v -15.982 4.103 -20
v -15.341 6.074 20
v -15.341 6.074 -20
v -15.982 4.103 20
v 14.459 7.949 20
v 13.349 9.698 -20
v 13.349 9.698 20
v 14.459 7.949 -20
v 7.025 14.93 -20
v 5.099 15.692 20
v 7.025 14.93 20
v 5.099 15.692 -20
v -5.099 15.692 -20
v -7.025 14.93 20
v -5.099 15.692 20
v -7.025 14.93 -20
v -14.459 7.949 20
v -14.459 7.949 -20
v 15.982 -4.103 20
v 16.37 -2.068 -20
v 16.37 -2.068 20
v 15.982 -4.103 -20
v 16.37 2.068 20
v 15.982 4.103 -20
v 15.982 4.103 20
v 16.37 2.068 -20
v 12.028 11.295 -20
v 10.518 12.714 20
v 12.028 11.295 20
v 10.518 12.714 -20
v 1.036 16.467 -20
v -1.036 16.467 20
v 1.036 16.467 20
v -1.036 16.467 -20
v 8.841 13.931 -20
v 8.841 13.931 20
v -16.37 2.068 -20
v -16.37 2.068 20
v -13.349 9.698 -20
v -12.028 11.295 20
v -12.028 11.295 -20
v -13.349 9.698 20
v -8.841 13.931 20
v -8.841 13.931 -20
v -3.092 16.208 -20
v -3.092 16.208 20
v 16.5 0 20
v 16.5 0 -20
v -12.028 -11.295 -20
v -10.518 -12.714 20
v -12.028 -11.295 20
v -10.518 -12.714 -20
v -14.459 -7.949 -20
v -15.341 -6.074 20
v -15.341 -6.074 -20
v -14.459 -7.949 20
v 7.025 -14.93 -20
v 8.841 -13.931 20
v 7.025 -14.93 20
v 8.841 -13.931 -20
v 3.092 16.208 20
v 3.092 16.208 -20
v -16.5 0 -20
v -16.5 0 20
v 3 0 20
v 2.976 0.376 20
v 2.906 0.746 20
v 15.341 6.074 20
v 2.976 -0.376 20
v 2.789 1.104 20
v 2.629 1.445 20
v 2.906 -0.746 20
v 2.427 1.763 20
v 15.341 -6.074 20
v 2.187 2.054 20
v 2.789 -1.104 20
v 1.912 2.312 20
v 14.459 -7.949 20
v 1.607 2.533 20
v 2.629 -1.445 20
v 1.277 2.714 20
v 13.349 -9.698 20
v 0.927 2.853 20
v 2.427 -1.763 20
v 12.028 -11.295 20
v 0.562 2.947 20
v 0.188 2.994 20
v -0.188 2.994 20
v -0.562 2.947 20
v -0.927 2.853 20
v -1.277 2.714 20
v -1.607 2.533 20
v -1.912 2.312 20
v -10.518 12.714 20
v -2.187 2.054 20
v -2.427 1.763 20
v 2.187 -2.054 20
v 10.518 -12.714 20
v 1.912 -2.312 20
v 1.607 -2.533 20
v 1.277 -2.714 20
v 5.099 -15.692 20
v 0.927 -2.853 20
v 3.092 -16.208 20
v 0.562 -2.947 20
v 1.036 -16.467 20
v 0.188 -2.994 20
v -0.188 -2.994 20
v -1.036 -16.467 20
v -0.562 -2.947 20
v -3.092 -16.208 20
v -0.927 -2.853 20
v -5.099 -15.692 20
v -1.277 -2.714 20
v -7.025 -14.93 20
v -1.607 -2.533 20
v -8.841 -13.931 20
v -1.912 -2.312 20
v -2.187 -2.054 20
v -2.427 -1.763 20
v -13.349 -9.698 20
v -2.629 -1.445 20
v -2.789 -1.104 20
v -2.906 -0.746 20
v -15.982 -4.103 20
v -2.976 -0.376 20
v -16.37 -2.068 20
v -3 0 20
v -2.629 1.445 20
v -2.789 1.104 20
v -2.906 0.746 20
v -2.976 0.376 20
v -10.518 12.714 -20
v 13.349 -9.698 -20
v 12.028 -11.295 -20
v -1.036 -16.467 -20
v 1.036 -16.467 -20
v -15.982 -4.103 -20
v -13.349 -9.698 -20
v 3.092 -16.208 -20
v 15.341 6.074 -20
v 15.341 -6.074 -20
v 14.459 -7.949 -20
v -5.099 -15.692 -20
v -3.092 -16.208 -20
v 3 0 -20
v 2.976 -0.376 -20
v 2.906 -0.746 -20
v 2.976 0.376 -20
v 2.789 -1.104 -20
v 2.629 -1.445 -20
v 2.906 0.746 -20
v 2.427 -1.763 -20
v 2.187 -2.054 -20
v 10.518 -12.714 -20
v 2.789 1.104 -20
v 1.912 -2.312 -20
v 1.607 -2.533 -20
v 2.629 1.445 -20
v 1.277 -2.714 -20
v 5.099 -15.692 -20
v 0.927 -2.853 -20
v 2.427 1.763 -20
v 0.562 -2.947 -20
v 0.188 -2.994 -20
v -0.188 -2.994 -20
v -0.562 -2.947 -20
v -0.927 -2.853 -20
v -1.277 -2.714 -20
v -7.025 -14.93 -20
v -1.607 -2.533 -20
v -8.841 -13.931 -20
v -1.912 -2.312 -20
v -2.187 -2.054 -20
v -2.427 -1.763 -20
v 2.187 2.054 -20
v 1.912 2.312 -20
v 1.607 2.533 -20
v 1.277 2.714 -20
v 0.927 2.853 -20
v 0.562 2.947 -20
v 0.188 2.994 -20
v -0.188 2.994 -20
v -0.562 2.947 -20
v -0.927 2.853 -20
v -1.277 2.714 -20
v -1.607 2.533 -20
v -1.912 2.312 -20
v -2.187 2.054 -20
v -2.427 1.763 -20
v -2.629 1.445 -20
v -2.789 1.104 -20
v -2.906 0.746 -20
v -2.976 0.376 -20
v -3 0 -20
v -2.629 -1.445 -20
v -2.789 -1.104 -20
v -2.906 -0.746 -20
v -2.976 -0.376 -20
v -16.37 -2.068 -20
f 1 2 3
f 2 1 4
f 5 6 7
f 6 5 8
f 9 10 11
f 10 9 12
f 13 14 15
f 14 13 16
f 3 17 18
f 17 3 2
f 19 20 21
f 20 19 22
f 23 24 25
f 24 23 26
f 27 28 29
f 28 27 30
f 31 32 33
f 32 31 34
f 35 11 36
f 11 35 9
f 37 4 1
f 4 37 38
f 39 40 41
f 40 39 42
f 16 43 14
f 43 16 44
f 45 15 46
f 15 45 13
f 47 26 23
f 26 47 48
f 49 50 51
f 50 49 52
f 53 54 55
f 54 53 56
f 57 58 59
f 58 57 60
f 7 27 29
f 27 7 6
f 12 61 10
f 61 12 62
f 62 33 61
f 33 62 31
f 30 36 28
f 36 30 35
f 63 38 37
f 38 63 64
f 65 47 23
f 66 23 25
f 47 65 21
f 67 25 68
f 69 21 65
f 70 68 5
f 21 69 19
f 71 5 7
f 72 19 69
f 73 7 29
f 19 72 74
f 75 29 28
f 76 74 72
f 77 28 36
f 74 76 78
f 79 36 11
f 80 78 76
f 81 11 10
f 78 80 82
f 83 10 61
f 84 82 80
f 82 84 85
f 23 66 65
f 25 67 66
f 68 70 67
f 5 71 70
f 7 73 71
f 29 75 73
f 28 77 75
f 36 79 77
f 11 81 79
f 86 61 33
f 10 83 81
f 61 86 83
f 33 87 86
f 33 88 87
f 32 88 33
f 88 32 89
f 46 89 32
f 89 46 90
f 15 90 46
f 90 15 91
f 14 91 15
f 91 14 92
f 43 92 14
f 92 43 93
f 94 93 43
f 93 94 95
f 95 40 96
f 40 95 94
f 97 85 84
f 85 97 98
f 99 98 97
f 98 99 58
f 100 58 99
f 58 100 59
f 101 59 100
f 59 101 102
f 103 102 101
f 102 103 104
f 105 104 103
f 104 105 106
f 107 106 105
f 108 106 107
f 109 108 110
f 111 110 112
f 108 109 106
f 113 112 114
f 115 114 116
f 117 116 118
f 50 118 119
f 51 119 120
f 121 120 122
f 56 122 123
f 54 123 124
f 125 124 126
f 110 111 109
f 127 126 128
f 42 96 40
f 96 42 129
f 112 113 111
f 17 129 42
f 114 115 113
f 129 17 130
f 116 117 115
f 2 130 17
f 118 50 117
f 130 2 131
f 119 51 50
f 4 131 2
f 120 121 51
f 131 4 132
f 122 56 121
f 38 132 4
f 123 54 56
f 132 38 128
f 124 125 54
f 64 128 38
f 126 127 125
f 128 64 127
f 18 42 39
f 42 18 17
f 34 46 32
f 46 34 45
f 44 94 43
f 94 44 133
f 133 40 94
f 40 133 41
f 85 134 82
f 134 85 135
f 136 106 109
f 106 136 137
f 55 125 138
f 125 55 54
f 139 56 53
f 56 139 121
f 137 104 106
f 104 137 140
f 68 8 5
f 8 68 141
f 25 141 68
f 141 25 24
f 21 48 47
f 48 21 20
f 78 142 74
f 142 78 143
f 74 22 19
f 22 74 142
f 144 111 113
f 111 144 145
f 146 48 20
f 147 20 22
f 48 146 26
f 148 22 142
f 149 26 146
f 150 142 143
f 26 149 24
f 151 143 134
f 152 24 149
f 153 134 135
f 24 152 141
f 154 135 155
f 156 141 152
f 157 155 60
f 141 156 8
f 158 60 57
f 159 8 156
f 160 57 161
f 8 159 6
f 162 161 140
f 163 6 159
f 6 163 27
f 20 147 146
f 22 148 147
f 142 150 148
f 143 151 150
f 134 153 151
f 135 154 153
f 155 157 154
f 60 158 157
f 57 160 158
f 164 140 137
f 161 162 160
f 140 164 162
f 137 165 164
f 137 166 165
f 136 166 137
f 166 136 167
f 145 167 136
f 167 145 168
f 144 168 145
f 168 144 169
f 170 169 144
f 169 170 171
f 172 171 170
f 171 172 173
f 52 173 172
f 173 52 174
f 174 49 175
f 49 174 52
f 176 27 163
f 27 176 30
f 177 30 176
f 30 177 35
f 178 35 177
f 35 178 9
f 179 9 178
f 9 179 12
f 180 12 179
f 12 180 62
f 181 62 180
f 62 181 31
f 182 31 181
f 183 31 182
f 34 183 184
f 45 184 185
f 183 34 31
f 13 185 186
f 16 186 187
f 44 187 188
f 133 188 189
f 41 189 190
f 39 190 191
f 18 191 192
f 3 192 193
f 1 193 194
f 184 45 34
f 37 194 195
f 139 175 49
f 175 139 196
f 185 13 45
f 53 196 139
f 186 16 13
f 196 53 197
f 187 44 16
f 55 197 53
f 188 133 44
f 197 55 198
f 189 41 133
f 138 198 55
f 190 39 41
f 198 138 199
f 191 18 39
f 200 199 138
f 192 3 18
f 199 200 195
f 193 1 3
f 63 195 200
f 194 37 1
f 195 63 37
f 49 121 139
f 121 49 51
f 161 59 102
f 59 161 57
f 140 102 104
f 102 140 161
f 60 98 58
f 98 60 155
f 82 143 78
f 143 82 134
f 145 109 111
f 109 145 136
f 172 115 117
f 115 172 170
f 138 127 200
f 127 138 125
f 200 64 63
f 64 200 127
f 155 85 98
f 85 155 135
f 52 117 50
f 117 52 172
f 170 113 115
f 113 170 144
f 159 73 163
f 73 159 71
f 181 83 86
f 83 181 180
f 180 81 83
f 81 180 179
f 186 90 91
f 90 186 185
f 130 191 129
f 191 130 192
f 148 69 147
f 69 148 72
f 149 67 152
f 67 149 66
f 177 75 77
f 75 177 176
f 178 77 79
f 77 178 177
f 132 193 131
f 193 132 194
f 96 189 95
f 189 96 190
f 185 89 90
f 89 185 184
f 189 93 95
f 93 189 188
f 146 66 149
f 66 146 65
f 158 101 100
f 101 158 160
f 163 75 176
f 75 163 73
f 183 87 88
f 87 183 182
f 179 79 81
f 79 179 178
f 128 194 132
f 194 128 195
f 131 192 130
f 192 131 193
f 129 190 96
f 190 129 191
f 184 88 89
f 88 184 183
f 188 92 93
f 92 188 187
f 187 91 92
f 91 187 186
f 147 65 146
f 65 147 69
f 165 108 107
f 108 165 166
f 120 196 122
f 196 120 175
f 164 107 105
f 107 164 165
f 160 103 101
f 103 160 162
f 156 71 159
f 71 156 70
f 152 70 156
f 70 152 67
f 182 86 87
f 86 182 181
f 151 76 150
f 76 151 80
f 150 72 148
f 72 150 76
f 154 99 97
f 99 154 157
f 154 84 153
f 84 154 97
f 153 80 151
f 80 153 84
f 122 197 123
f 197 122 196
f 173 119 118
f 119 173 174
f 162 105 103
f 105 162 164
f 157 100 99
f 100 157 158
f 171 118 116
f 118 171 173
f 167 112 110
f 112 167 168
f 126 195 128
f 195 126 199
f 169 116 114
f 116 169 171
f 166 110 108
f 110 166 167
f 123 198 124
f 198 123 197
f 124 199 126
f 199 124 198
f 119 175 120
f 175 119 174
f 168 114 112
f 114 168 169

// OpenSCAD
$fn = 50;


difference() {
	union() {
		translate(v = [0, 0, -20.0000000000]) {
			cylinder(h = 40, r = 16.5000000000);
		}
	}
	union() {
		translate(v = [0, 0, -100.0000000000]) {
			cylinder(h = 200, r = 3);
		}
	}
}
